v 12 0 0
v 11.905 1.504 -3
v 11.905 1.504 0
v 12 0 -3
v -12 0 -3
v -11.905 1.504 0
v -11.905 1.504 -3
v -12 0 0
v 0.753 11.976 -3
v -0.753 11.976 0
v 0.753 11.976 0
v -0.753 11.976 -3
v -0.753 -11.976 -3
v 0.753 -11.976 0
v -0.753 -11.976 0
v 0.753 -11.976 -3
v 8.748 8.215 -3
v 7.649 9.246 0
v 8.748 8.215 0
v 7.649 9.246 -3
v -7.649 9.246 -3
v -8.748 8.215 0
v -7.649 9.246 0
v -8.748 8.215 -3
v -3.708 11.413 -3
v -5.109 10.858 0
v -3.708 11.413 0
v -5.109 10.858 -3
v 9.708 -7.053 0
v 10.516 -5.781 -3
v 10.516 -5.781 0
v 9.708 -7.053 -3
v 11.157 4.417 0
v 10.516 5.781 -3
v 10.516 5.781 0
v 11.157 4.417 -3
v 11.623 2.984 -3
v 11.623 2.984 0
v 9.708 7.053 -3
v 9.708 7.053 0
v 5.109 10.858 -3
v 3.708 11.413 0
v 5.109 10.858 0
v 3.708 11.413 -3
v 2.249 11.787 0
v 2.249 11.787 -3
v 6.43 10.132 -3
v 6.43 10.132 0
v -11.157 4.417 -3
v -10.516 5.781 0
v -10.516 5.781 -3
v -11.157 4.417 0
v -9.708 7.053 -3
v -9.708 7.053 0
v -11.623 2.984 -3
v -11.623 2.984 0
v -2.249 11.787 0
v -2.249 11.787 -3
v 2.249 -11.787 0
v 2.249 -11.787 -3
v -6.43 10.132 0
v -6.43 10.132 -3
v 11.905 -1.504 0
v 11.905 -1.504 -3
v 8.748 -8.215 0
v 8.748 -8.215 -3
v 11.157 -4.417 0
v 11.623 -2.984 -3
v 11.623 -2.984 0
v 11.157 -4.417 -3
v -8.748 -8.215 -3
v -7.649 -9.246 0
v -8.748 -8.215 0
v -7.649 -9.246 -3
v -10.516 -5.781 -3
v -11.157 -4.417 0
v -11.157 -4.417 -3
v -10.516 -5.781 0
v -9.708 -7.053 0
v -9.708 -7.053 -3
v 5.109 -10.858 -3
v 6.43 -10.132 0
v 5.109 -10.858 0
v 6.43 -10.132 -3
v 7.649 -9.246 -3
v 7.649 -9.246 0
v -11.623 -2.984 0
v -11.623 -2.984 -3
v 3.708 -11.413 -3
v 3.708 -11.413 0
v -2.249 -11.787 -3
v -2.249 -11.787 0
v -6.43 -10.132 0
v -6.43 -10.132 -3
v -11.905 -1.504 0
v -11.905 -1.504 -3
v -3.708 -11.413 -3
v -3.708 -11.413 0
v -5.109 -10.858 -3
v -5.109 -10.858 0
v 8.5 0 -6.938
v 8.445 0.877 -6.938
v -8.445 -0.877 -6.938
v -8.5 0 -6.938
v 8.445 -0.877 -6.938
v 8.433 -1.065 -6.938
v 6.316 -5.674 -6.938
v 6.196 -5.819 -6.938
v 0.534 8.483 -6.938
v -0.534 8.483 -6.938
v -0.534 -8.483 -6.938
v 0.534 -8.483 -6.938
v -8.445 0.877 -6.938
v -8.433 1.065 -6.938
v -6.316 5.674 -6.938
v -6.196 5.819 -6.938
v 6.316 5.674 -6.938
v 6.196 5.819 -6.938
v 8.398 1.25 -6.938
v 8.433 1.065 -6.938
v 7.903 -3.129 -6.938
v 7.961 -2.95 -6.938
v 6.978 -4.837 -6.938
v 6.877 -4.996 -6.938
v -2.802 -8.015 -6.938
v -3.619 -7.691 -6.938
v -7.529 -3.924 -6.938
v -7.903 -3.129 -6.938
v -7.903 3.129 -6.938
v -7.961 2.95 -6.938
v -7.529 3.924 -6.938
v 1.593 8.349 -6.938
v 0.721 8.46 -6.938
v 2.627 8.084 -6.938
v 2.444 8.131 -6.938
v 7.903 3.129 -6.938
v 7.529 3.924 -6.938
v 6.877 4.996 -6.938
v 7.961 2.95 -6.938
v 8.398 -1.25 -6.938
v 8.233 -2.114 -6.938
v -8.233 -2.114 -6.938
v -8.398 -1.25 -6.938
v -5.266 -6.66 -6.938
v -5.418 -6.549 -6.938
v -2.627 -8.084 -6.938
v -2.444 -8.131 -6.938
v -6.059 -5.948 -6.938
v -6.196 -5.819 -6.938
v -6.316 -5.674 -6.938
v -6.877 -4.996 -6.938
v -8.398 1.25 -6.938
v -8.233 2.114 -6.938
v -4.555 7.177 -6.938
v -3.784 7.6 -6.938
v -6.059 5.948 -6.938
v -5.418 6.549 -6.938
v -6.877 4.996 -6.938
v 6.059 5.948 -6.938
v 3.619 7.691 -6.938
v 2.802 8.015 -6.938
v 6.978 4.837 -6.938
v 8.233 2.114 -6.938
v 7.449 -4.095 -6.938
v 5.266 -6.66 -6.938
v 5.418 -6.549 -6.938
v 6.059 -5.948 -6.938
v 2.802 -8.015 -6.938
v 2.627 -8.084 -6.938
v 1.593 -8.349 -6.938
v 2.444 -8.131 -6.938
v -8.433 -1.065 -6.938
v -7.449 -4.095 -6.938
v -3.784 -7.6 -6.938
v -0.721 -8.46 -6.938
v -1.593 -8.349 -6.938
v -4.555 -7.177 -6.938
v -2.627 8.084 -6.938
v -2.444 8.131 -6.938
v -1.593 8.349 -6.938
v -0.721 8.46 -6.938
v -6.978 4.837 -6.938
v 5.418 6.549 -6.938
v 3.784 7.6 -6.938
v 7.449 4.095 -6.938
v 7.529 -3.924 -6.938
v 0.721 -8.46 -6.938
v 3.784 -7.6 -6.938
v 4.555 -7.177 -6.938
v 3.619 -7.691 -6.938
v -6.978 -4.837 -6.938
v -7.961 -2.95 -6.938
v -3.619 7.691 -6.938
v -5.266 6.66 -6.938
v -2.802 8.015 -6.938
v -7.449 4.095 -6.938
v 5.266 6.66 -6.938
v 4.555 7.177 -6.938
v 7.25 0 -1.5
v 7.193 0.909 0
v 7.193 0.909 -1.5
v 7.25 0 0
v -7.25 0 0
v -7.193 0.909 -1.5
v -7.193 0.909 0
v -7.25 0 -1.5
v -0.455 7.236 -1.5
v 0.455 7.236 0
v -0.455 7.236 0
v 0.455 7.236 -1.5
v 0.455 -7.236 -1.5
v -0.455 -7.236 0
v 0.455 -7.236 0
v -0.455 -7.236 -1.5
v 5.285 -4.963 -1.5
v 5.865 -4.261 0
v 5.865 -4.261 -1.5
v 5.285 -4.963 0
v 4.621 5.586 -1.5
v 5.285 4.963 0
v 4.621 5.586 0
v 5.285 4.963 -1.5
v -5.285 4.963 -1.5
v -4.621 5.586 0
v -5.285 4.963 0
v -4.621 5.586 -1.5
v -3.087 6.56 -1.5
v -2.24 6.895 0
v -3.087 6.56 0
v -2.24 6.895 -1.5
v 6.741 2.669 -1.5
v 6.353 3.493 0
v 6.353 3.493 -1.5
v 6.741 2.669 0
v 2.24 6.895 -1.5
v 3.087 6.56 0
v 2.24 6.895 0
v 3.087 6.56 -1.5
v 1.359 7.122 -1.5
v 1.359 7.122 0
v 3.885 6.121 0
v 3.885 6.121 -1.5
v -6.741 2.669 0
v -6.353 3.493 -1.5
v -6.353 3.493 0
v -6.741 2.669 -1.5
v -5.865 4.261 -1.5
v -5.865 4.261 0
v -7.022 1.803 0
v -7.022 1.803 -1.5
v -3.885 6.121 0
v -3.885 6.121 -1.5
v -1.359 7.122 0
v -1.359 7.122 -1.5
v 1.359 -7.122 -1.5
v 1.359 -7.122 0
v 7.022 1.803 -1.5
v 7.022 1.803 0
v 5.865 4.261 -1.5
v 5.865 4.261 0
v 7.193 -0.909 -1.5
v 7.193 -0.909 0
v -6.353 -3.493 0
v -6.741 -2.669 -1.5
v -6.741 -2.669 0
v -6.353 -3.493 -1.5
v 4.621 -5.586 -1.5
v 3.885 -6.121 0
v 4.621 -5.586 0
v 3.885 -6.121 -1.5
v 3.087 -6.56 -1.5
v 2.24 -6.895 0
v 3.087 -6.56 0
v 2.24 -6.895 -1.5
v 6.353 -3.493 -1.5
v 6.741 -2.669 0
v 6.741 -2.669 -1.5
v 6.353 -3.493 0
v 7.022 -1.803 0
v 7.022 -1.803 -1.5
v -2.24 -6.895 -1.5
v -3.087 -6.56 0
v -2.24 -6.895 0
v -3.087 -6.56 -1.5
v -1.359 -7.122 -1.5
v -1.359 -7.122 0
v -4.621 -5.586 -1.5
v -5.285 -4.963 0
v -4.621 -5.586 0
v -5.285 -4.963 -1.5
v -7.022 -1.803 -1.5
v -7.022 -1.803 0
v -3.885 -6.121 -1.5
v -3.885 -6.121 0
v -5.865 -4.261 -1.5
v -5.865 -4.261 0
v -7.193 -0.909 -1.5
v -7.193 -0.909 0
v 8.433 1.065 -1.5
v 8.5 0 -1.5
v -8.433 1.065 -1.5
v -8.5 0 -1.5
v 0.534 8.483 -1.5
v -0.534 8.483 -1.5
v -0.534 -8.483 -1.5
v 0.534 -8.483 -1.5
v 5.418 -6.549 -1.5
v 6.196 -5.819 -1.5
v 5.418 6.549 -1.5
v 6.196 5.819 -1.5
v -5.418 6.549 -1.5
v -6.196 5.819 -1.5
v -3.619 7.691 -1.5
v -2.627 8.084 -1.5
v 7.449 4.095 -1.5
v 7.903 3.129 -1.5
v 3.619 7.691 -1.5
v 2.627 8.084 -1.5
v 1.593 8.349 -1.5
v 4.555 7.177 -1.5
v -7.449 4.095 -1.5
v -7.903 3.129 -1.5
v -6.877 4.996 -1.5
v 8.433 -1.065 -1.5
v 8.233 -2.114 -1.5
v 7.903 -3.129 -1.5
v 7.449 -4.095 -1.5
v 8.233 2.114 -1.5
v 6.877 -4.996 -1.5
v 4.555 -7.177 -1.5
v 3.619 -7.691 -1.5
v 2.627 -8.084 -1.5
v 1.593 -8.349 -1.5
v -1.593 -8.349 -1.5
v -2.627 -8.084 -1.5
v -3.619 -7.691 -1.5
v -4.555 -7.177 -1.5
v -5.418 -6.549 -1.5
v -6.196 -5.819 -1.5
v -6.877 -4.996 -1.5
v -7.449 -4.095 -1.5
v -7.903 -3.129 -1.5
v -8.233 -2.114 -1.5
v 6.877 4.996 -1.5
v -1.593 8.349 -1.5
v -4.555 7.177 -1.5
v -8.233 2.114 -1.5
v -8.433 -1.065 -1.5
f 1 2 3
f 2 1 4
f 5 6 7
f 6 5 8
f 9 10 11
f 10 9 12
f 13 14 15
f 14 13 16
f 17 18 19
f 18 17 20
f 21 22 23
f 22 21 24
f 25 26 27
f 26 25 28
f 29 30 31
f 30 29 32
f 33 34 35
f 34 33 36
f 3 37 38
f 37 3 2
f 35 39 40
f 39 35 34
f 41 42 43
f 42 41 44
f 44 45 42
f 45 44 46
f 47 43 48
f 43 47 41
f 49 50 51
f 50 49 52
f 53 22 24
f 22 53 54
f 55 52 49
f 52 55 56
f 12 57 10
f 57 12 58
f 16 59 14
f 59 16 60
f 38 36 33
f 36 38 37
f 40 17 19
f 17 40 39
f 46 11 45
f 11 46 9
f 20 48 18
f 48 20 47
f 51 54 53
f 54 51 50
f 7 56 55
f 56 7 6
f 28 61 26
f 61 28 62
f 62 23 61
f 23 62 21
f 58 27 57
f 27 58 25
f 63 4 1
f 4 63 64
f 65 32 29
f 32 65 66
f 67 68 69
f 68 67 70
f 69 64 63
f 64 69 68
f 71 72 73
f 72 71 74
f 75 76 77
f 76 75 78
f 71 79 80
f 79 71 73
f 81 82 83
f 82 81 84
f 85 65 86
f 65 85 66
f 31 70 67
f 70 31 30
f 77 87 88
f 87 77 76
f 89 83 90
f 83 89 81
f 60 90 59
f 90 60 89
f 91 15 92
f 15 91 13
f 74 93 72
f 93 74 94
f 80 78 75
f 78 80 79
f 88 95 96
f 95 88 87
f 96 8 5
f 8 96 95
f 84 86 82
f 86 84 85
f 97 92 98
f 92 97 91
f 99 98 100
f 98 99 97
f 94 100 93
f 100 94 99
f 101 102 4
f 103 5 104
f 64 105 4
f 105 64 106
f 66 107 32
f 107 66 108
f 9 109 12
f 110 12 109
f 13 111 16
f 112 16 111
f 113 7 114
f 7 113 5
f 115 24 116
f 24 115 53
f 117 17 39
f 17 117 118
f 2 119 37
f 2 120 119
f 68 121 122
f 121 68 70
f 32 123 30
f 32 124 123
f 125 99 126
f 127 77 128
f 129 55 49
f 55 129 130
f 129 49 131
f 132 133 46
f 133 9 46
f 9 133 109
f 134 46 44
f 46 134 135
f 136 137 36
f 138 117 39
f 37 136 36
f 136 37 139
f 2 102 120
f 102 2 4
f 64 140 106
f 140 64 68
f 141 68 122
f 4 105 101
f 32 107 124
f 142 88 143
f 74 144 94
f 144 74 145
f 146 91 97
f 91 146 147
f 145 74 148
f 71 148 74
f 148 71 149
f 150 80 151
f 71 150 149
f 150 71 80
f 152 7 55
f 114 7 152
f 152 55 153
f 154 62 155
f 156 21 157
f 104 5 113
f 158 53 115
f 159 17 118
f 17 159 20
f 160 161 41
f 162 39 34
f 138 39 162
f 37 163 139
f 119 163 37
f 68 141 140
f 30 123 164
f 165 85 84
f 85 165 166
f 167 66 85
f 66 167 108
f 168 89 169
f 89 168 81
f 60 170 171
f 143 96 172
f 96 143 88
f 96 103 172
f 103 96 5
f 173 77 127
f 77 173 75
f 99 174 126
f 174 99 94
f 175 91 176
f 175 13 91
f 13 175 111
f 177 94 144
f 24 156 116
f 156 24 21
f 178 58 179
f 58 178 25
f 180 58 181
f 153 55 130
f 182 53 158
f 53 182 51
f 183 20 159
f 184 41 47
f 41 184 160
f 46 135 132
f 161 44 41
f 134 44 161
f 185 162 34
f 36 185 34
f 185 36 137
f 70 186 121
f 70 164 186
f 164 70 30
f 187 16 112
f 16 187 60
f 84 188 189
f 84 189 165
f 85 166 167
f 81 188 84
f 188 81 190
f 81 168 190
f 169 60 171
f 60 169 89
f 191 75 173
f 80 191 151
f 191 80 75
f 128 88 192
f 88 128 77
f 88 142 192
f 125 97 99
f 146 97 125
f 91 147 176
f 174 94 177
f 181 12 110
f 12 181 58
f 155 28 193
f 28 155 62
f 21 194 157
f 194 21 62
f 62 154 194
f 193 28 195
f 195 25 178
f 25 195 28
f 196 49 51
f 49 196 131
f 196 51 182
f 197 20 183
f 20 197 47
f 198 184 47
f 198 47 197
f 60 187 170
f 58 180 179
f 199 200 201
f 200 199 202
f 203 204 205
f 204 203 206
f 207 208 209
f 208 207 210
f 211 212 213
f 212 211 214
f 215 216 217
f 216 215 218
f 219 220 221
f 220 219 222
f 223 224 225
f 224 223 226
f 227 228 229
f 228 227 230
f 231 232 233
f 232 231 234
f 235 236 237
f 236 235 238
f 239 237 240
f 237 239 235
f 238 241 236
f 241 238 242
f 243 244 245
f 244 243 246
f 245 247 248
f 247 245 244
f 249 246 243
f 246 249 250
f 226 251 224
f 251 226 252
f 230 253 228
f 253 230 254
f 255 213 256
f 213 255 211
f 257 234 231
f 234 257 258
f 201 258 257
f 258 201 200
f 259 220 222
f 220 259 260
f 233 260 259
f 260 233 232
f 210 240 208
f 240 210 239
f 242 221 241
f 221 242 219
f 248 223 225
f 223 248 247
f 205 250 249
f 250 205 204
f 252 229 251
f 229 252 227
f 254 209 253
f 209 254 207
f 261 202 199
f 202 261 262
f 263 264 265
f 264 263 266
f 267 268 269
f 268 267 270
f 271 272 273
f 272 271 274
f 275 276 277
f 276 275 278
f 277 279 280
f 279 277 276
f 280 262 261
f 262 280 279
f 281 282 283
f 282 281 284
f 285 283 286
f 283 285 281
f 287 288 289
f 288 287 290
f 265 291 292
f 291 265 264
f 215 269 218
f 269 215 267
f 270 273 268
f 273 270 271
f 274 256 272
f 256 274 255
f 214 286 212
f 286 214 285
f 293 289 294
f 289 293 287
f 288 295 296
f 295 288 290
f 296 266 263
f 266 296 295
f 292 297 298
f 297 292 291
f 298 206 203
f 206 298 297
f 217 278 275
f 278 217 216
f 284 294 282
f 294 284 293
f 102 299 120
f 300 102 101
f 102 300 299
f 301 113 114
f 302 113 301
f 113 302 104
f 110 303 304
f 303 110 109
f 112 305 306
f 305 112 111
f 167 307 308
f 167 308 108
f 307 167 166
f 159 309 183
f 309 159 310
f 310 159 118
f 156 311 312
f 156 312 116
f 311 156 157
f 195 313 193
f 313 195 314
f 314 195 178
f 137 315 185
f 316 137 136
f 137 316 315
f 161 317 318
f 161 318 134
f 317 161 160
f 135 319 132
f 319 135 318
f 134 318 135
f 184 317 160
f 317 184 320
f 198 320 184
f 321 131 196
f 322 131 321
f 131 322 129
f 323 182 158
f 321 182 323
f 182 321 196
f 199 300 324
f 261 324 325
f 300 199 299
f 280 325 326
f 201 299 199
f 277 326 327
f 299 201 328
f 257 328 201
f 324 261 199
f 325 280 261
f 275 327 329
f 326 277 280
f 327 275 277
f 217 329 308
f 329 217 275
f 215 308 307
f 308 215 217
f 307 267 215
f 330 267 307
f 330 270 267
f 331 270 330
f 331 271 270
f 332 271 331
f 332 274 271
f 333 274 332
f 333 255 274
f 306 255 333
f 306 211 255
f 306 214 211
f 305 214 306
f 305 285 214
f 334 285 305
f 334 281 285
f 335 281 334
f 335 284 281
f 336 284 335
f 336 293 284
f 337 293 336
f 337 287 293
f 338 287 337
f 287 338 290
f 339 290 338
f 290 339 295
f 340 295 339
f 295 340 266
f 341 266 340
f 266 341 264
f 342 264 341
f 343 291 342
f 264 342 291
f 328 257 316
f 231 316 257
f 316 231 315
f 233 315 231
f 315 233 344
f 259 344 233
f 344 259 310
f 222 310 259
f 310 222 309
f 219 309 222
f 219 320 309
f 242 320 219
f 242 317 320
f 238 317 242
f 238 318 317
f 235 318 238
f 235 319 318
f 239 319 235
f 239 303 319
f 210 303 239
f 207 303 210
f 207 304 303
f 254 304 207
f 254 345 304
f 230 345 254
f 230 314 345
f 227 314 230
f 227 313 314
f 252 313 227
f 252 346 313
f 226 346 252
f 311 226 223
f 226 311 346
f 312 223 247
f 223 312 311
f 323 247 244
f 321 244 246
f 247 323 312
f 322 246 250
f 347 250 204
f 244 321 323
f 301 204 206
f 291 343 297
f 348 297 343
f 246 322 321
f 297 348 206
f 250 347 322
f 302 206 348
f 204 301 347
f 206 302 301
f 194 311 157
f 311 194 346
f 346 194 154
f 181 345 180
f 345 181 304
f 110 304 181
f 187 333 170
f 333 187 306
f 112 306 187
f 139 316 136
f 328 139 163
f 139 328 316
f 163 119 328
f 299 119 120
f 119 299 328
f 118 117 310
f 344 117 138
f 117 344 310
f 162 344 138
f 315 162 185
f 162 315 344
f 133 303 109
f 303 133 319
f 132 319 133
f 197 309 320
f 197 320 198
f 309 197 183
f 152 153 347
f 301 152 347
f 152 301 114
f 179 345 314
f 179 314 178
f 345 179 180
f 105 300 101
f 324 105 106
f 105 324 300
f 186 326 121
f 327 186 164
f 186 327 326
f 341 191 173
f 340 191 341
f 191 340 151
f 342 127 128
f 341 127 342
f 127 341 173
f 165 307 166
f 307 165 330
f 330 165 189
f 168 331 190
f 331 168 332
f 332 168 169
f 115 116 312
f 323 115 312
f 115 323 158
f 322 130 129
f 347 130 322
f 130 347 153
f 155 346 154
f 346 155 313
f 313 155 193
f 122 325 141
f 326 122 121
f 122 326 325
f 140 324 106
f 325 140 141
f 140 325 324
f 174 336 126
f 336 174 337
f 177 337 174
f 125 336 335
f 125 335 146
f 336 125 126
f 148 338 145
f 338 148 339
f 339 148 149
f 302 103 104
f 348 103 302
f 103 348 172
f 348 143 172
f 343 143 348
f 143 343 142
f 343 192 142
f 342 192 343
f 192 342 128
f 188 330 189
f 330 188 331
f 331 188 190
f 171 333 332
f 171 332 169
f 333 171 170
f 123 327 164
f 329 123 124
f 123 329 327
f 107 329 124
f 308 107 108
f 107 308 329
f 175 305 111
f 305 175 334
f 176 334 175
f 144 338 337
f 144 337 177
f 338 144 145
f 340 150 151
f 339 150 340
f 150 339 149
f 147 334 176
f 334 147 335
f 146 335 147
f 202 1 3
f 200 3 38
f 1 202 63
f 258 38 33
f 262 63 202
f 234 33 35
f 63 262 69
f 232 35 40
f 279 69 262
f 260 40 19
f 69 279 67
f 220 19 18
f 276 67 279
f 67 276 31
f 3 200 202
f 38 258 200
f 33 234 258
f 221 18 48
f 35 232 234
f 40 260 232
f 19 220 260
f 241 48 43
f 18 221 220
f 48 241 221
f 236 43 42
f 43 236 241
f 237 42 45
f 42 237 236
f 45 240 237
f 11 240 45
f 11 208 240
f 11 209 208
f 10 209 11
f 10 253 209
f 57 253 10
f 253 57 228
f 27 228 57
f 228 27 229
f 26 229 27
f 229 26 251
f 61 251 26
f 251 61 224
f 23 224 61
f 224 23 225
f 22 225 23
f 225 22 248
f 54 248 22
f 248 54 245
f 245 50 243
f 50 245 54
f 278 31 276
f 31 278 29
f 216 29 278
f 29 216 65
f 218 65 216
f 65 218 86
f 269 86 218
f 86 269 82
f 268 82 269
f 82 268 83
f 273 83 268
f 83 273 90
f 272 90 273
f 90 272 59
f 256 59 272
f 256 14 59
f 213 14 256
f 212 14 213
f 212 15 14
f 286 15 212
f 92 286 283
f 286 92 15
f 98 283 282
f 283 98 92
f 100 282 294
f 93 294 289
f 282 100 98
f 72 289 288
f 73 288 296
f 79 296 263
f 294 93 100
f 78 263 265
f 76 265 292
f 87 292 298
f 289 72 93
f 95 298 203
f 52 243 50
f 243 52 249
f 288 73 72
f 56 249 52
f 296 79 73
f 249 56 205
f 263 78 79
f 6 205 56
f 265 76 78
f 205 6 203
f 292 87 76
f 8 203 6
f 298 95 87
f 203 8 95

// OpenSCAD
$fn = 50;


difference() {
	union() {
		translate(v = [0, 0, -3.0000000000]) {
			cylinder(h = 6, r = 12.0000000000);
		}
		translate(v = [0, 0, 3.0000000000]) {
			cylinder(h = 4.5000000000, r1 = 12.0000000000, r2 = 8.0000000000);
		}
		translate(v = [0, 0, -7.5000000000]) {
			cylinder(h = 4.5000000000, r1 = 8.0000000000, r2 = 12.0000000000);
		}
	}
	union() {
		translate(v = [0, 0, -100.0000000000]) {
			cylinder(h = 200, r = 5);
		}
		translate(v = [0, 0, 4.5000000000]) {
			translate(v = [0, 0, -3.0000000000]) {
				union() {
					difference() {
						#cylinder(h = 6, r = 8.5000000000);
						#cylinder(h = 6, r = 3.0000000000);
					}
					difference() {
						#translate(v = [0, 0, -50]) {
							cylinder(h = 100, r = 7.2500000000);
						}
					}
				}
			}
		}
		translate(v = [0, 0, -4.5000000000]) {
			translate(v = [0, 0, -3.0000000000]) {
				union() {
					difference() {
						#cylinder(h = 6, r = 8.5000000000);
						#cylinder(h = 6, r = 3.0000000000);
					}
					difference() {
						#translate(v = [0, 0, -50]) {
							cylinder(h = 100, r = 7.2500000000);
						}
					}
				}
			}
		}
		translate(v = [-250.0000000000, -250.0000000000, 0]) {
			cube(size = [500, 500, 500]);
		}
		translate(v = [-250.0000000000, -250.0000000000, 0]) {
			cube(size = [500, 500, 500]);
		}
		translate(v = [-250.0000000000, -250.0000000000, 0]) {
			cube(size = [500, 500, 500]);
		}
	}
}
